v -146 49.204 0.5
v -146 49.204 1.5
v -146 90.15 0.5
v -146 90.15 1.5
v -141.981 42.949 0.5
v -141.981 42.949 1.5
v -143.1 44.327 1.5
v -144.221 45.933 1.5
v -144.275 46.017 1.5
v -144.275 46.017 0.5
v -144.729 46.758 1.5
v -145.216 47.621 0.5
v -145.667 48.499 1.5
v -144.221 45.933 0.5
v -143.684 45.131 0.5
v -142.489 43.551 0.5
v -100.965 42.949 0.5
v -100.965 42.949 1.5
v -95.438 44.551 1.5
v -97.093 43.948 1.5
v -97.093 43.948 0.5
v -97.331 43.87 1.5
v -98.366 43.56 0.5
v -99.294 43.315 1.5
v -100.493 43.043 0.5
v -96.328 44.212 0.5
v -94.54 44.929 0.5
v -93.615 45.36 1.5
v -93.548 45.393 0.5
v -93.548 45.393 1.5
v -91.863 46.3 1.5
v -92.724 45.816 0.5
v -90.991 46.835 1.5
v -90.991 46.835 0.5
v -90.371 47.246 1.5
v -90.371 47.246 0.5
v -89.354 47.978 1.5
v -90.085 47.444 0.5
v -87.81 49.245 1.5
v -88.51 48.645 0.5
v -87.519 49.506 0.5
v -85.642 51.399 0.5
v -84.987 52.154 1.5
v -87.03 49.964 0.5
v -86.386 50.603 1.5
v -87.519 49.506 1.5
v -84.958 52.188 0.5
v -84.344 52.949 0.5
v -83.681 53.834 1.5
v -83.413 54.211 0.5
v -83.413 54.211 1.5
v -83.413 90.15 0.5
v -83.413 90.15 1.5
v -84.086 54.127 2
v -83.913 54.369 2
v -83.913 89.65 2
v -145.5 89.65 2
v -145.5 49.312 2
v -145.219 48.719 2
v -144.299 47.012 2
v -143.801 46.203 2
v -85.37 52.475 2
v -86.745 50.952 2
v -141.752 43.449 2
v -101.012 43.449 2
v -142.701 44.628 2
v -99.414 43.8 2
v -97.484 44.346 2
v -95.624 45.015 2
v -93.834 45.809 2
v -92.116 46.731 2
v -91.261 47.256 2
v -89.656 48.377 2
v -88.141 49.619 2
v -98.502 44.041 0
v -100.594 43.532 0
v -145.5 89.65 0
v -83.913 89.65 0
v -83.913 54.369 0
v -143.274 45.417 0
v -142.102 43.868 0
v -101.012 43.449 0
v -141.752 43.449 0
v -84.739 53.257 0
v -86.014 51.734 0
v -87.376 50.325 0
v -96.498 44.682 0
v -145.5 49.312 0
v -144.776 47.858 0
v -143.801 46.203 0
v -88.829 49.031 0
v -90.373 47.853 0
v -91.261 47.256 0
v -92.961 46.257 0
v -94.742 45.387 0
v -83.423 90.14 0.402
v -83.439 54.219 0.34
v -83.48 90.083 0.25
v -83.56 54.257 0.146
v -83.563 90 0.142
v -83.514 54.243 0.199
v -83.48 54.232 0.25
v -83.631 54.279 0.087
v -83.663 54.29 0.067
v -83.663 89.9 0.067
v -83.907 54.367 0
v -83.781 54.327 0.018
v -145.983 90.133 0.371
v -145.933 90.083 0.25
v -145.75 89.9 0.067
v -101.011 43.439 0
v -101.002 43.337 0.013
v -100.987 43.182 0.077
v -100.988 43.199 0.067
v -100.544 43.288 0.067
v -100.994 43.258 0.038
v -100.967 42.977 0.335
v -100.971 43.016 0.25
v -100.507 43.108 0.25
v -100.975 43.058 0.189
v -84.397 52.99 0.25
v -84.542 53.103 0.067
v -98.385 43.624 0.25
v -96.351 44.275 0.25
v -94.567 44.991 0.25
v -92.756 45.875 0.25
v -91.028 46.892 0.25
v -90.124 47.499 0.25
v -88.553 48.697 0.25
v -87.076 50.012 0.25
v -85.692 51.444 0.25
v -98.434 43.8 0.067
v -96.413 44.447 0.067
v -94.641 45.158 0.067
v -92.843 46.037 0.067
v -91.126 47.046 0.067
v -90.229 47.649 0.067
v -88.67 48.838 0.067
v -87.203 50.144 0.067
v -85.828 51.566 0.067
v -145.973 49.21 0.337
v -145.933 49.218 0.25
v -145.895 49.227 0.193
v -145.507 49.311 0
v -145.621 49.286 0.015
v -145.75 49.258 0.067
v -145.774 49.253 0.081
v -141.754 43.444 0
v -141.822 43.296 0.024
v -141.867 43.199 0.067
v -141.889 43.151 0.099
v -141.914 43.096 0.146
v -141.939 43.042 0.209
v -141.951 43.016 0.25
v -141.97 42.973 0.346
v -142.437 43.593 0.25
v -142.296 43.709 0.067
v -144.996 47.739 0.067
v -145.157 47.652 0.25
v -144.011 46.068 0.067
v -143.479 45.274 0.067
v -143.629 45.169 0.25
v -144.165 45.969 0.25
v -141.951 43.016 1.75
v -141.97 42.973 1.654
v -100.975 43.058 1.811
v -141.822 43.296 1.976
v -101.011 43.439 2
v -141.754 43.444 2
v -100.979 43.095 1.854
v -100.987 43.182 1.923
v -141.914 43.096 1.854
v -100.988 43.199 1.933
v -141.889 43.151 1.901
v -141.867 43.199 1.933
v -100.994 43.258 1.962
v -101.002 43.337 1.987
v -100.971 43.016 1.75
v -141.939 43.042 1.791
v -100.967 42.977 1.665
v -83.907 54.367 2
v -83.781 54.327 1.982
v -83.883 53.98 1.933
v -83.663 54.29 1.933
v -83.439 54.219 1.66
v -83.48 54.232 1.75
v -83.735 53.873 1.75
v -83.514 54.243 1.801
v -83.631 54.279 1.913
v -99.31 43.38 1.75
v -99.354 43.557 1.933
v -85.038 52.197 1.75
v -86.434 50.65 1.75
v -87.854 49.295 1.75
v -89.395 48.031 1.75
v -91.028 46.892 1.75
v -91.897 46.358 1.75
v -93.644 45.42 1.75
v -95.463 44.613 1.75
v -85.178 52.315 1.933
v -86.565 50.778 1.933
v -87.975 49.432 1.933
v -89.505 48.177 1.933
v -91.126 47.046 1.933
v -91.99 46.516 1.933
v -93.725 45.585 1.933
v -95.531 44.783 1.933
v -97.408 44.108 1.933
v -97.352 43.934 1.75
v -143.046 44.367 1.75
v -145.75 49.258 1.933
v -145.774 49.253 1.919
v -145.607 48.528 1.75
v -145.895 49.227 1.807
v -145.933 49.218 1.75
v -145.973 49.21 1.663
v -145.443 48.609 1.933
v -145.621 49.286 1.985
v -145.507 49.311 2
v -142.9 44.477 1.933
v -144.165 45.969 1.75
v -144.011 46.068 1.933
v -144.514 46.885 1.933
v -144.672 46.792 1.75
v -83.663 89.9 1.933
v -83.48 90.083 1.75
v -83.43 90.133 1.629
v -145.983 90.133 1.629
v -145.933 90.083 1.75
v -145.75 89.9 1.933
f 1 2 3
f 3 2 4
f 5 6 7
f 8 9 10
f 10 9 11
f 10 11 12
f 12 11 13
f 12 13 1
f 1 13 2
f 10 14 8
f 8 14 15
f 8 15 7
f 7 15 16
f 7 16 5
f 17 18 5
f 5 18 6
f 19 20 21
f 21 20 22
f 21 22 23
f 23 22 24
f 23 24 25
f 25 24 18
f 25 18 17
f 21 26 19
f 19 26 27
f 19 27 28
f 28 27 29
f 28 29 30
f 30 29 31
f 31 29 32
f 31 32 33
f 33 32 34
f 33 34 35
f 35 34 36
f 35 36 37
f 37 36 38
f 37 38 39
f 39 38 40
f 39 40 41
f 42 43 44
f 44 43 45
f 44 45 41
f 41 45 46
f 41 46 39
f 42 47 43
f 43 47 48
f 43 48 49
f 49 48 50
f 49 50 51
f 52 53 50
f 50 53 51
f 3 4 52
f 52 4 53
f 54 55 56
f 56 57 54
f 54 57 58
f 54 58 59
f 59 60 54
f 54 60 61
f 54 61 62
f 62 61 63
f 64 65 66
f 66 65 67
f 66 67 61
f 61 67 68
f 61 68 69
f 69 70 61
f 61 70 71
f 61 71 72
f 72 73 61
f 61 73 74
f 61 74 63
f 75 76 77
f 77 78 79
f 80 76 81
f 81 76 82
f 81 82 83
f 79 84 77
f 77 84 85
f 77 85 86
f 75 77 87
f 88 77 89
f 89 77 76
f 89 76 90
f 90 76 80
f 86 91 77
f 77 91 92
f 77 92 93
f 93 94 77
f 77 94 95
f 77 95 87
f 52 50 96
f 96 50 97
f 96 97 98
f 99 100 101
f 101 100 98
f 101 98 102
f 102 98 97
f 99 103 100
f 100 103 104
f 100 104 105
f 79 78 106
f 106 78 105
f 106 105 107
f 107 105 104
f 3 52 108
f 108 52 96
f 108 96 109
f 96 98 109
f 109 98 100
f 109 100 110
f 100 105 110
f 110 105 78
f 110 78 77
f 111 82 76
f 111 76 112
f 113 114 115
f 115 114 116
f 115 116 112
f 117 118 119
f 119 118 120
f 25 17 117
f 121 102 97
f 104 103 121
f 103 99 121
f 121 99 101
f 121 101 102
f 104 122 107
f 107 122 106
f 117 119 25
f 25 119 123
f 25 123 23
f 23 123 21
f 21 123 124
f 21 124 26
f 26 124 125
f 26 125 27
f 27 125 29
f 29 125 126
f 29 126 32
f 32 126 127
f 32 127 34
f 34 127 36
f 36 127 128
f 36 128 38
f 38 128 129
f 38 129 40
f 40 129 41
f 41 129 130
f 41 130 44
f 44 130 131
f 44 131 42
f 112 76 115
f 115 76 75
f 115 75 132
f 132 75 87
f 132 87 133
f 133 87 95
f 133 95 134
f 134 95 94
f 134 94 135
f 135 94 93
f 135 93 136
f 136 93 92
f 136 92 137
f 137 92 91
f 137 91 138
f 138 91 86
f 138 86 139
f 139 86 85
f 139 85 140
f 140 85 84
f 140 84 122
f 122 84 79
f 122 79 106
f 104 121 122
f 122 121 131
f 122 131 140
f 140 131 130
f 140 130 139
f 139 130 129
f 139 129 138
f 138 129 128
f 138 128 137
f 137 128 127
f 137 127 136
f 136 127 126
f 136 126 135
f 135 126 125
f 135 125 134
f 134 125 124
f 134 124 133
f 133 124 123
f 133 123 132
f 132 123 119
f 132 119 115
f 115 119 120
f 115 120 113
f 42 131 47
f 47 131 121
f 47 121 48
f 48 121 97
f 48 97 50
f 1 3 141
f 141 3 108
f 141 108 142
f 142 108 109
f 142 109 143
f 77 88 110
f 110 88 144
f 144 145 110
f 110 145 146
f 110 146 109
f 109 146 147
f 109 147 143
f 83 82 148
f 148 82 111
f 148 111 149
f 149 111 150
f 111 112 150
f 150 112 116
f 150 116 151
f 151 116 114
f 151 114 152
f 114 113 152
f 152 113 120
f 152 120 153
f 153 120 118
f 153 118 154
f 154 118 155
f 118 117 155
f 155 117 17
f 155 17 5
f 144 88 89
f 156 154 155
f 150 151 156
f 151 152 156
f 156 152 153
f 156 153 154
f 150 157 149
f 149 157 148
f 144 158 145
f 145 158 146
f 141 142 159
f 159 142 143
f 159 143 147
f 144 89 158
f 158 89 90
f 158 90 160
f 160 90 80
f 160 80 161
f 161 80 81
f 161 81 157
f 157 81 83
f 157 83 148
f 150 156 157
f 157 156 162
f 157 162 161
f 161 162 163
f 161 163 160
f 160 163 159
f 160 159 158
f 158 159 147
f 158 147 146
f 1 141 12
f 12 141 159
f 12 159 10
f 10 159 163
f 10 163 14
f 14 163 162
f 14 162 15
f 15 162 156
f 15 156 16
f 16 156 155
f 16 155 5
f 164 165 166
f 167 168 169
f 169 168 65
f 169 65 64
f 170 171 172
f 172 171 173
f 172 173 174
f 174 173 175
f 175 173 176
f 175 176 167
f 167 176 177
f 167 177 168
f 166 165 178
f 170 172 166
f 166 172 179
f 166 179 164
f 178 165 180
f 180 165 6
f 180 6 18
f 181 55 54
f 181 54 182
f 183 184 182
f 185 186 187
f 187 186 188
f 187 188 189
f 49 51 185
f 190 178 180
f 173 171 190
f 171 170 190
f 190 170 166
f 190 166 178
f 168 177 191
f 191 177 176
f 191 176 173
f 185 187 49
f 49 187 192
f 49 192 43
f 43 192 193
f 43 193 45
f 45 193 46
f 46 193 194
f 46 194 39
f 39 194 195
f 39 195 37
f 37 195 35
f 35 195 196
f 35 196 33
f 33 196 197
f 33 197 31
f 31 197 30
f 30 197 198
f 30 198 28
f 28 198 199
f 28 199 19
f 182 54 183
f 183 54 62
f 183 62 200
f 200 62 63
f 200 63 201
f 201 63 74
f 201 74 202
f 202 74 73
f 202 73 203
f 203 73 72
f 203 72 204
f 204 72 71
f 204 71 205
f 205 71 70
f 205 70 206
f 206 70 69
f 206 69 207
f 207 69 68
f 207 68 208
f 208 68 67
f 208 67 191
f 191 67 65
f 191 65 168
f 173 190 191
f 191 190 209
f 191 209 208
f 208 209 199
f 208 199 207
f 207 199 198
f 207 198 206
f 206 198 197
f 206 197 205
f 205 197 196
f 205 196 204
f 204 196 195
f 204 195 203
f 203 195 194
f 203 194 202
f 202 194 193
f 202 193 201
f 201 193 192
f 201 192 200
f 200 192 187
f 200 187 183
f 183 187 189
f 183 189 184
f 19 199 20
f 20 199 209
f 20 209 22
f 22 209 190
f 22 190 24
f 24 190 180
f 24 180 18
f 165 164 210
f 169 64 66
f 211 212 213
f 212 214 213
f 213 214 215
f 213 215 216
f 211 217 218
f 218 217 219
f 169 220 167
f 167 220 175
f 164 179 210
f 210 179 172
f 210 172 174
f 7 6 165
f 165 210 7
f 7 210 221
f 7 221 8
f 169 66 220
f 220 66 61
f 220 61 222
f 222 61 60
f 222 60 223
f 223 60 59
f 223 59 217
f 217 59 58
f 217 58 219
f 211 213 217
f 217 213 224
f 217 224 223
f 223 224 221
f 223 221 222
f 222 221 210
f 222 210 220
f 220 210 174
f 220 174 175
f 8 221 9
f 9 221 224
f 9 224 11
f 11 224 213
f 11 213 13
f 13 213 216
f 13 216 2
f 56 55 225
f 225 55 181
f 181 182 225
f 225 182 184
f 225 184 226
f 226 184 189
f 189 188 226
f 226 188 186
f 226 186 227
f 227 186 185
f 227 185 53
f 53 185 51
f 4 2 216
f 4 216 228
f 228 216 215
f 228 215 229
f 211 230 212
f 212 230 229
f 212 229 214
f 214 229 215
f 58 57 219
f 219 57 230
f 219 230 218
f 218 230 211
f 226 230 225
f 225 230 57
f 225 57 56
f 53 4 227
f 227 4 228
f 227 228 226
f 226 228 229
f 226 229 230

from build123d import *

# Parameters (mm, degrees)
BOSS_EXTRUDE1_DEPTH = 2
FILLET1_R           = 0.5


with BuildPart() as part:
    # Sketch1 → Boss-Extrude1 (new body)
    with BuildSketch(Plane.XY):
        with BuildLine():
            Line((-145.99999999999895, 90.15000000000006), (-83.41298388416027, 90.15000000000006))
            Line((-83.41298388416027, 90.15000000000006), (-83.41298388416027, 54.21061421965468))
            add(Edge.make_bspline(
                [(-100.96466600142944, 42.94885950379533), (-89.79406328434806, 45.090747163384094), (-83.41298388416027, 54.21061421965468)],
                knots=[0, 0, 0, 1, 1, 1], degree=2))
            Line((-100.96466600142944, 42.94885950379533), (-141.9812710492236, 42.94885950379533))
            add(Edge.make_bspline(
                [(-145.99999999999895, 49.20370216177108), (-144.45177140863723, 45.789495610020026), (-141.9812710492236, 42.94885950379533)],
                knots=[0, 0, 0, 1, 1, 1], degree=2))
            Line((-145.99999999999895, 49.20370216177108), (-145.99999999999895, 90.15000000000006))
        make_face()
    extrude(amount=BOSS_EXTRUDE1_DEPTH)

    # Fillet1
    fillet1_edges = [part.edges().sort_by_distance(p)[0] for p in [
        (-121.47296852532652, 42.94885950379533, 2),
        (-91.04467198297803, 46.80118149181579, 2),
        (-83.41298388416027, 72.18030710982737, 2),
        (-114.70649194207961, 90.15000000000006, 2),
        (-145.99999999999895, 69.67685108088557, 2),
        (-114.70649194207961, 90.15000000000006, 0),
        (-83.41298388416027, 72.18030710982737, 0),
        (-91.04467198297803, 46.80118149181579, 0),
        (-121.47296852532652, 42.94885950379533, 0),
        (-144.2190558069609, 45.92954612787242, 0),
        (-145.99999999999895, 69.67685108088557, 0),
        (-144.2190558069609, 45.92954612787242, 2),
    ]]
    fillet(fillet1_edges, radius=FILLET1_R)


solid = part.part
